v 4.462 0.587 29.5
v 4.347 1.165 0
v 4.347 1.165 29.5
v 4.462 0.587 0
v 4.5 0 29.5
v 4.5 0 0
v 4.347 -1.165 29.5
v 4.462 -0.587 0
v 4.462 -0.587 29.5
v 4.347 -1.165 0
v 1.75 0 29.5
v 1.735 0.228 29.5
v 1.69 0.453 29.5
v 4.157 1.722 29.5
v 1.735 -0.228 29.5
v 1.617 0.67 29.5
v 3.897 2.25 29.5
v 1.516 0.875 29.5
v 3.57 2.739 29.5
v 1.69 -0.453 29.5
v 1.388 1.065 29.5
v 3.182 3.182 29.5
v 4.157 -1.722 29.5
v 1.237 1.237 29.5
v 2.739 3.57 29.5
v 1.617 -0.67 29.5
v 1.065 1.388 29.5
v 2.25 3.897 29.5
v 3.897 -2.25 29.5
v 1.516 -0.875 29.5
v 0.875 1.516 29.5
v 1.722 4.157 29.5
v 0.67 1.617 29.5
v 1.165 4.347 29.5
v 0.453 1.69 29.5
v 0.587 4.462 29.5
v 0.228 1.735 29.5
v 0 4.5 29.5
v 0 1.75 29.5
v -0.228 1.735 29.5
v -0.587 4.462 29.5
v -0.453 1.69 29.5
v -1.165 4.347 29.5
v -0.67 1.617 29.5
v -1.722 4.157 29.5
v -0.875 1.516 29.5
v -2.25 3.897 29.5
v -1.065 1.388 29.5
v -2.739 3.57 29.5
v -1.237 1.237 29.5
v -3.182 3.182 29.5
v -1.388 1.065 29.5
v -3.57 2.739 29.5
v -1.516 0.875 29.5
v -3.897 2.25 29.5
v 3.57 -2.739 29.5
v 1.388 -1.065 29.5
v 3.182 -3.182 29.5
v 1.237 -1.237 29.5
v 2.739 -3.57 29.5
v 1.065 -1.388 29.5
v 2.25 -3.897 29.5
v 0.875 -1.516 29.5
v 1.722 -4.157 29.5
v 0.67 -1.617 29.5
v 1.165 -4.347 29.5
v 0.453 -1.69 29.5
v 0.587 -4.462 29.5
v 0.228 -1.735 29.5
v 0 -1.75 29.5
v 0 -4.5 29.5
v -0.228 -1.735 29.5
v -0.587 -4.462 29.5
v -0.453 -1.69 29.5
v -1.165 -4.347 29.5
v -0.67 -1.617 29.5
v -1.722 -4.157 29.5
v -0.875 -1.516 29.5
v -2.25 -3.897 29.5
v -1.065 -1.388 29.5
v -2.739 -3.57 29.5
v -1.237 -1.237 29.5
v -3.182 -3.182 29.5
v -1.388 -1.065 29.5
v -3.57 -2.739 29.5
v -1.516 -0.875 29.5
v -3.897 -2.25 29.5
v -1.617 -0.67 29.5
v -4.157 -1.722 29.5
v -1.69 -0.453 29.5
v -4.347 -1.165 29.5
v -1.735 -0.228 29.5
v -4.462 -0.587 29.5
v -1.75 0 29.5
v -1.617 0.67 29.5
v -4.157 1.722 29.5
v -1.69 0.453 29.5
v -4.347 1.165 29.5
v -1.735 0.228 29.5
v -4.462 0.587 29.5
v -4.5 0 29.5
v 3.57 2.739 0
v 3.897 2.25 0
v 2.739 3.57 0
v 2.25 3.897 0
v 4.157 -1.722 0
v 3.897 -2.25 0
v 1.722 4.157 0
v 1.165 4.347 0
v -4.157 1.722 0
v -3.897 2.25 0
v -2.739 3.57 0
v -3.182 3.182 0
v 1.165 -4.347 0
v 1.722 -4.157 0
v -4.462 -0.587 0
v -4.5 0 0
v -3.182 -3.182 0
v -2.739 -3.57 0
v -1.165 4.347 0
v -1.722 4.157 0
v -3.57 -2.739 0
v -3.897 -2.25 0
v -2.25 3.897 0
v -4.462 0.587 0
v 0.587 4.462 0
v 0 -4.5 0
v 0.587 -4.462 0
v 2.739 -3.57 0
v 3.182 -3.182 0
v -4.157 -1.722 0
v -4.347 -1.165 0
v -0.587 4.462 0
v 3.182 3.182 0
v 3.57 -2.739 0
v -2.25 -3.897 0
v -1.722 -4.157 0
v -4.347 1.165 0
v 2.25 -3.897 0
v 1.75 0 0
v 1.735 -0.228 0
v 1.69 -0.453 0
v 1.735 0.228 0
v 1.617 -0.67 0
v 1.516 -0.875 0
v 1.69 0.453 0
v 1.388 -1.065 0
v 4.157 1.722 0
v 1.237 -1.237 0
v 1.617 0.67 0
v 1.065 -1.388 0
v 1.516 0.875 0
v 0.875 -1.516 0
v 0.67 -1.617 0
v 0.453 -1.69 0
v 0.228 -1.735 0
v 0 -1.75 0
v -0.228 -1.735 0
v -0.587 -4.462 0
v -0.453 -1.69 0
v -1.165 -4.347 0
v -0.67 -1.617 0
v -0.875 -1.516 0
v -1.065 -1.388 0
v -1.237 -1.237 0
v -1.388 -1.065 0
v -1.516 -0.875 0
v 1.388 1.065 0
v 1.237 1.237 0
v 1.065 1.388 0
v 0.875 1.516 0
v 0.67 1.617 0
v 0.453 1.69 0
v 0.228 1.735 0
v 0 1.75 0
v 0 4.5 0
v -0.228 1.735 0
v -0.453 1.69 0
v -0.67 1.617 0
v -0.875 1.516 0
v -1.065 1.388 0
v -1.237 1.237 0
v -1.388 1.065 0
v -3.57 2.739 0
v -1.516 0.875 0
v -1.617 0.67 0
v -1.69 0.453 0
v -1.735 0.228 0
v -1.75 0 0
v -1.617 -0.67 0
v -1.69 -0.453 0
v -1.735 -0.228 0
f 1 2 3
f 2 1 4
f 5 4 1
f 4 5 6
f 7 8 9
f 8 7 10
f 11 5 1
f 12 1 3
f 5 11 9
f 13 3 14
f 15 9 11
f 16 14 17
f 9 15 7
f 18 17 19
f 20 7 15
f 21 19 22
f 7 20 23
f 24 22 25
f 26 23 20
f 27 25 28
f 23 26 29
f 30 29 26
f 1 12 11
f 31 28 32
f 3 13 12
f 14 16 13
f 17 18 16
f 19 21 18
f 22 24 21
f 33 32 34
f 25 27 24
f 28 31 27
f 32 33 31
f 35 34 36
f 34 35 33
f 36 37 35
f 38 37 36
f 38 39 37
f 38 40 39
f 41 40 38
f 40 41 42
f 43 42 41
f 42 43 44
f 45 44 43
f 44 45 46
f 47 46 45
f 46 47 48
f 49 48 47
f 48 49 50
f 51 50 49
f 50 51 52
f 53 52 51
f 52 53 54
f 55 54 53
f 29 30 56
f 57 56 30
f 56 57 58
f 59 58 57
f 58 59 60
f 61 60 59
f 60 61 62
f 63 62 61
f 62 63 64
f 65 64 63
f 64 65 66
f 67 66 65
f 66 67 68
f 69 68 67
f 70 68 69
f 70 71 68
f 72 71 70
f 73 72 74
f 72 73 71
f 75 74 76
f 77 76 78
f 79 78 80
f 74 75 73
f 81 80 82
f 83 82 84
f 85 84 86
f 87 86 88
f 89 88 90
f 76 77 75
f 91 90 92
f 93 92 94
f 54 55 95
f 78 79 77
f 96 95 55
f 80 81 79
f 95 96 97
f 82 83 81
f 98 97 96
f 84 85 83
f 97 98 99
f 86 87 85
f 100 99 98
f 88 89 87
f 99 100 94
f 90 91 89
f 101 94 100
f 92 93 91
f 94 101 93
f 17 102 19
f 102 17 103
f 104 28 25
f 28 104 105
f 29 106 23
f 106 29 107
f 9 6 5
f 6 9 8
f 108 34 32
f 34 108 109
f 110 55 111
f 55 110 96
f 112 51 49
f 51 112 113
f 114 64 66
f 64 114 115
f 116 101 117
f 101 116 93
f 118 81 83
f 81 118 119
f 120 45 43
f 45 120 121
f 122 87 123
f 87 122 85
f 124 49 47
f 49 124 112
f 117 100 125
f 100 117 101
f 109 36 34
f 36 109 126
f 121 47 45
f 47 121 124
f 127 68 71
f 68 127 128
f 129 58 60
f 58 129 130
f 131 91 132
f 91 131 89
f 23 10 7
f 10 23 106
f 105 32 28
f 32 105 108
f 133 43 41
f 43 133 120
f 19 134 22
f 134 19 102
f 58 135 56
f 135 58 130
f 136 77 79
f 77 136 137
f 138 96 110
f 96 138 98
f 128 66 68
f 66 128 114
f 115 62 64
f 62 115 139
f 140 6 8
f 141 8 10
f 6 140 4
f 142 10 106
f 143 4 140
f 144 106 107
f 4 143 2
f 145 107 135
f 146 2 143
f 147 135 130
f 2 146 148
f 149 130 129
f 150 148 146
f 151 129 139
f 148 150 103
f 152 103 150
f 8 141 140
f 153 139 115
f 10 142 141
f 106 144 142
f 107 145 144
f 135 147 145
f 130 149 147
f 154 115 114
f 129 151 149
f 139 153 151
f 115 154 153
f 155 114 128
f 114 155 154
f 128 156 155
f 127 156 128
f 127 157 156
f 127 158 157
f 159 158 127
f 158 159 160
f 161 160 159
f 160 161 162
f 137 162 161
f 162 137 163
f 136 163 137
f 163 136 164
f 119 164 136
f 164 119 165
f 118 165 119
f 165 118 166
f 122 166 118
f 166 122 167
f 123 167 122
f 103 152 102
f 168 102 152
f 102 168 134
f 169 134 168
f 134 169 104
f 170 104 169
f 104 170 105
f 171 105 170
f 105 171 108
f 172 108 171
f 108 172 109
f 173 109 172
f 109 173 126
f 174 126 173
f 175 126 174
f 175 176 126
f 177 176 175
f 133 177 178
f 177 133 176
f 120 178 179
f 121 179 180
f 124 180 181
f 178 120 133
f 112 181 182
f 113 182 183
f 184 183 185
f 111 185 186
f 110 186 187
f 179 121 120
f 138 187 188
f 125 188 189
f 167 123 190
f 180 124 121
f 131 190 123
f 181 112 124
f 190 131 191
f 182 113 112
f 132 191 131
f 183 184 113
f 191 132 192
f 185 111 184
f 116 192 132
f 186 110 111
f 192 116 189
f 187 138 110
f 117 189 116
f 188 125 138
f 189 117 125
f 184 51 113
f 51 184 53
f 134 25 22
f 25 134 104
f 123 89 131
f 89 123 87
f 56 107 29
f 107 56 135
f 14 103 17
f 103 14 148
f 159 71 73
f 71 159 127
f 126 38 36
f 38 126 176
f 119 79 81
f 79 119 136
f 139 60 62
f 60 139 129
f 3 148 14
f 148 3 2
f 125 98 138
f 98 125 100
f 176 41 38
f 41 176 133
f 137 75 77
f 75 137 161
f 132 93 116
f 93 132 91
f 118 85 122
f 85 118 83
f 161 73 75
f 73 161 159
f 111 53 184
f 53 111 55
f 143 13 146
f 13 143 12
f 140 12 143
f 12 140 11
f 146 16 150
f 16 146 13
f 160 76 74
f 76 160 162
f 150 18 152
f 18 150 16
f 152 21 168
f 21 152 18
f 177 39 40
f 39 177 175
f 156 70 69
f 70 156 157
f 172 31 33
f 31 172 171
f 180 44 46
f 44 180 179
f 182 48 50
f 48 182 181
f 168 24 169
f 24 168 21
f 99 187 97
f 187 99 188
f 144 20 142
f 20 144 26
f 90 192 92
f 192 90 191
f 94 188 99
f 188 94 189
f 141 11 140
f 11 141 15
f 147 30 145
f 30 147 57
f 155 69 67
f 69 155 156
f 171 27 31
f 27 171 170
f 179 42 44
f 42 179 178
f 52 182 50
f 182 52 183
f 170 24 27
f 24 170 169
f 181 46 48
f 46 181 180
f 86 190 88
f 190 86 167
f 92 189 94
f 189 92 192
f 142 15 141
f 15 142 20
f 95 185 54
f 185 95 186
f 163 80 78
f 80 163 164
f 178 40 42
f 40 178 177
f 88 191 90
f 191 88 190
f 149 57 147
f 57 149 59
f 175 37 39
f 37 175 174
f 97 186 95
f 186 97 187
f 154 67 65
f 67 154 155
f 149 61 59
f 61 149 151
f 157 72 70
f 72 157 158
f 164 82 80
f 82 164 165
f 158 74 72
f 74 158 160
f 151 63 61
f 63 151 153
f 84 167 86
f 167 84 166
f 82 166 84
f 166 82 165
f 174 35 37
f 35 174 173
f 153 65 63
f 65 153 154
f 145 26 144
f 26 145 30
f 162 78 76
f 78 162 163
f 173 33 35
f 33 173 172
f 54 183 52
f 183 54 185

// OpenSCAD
// Gen-CZ — frame standoff tube between stator and an endbell, on each M3 frame rod (outside rotor OD).
// Print x4. Height = frame_standoff_h (rotor + steel + hub + collar + running clearance).
include <parameters.scad>;
$fn = 48;
difference() {
    cylinder(d=standoff_od, h=frame_standoff_h);
    translate([0, 0, -0.1]) cylinder(d=m3_clear, h=frame_standoff_h + 0.2);
}
